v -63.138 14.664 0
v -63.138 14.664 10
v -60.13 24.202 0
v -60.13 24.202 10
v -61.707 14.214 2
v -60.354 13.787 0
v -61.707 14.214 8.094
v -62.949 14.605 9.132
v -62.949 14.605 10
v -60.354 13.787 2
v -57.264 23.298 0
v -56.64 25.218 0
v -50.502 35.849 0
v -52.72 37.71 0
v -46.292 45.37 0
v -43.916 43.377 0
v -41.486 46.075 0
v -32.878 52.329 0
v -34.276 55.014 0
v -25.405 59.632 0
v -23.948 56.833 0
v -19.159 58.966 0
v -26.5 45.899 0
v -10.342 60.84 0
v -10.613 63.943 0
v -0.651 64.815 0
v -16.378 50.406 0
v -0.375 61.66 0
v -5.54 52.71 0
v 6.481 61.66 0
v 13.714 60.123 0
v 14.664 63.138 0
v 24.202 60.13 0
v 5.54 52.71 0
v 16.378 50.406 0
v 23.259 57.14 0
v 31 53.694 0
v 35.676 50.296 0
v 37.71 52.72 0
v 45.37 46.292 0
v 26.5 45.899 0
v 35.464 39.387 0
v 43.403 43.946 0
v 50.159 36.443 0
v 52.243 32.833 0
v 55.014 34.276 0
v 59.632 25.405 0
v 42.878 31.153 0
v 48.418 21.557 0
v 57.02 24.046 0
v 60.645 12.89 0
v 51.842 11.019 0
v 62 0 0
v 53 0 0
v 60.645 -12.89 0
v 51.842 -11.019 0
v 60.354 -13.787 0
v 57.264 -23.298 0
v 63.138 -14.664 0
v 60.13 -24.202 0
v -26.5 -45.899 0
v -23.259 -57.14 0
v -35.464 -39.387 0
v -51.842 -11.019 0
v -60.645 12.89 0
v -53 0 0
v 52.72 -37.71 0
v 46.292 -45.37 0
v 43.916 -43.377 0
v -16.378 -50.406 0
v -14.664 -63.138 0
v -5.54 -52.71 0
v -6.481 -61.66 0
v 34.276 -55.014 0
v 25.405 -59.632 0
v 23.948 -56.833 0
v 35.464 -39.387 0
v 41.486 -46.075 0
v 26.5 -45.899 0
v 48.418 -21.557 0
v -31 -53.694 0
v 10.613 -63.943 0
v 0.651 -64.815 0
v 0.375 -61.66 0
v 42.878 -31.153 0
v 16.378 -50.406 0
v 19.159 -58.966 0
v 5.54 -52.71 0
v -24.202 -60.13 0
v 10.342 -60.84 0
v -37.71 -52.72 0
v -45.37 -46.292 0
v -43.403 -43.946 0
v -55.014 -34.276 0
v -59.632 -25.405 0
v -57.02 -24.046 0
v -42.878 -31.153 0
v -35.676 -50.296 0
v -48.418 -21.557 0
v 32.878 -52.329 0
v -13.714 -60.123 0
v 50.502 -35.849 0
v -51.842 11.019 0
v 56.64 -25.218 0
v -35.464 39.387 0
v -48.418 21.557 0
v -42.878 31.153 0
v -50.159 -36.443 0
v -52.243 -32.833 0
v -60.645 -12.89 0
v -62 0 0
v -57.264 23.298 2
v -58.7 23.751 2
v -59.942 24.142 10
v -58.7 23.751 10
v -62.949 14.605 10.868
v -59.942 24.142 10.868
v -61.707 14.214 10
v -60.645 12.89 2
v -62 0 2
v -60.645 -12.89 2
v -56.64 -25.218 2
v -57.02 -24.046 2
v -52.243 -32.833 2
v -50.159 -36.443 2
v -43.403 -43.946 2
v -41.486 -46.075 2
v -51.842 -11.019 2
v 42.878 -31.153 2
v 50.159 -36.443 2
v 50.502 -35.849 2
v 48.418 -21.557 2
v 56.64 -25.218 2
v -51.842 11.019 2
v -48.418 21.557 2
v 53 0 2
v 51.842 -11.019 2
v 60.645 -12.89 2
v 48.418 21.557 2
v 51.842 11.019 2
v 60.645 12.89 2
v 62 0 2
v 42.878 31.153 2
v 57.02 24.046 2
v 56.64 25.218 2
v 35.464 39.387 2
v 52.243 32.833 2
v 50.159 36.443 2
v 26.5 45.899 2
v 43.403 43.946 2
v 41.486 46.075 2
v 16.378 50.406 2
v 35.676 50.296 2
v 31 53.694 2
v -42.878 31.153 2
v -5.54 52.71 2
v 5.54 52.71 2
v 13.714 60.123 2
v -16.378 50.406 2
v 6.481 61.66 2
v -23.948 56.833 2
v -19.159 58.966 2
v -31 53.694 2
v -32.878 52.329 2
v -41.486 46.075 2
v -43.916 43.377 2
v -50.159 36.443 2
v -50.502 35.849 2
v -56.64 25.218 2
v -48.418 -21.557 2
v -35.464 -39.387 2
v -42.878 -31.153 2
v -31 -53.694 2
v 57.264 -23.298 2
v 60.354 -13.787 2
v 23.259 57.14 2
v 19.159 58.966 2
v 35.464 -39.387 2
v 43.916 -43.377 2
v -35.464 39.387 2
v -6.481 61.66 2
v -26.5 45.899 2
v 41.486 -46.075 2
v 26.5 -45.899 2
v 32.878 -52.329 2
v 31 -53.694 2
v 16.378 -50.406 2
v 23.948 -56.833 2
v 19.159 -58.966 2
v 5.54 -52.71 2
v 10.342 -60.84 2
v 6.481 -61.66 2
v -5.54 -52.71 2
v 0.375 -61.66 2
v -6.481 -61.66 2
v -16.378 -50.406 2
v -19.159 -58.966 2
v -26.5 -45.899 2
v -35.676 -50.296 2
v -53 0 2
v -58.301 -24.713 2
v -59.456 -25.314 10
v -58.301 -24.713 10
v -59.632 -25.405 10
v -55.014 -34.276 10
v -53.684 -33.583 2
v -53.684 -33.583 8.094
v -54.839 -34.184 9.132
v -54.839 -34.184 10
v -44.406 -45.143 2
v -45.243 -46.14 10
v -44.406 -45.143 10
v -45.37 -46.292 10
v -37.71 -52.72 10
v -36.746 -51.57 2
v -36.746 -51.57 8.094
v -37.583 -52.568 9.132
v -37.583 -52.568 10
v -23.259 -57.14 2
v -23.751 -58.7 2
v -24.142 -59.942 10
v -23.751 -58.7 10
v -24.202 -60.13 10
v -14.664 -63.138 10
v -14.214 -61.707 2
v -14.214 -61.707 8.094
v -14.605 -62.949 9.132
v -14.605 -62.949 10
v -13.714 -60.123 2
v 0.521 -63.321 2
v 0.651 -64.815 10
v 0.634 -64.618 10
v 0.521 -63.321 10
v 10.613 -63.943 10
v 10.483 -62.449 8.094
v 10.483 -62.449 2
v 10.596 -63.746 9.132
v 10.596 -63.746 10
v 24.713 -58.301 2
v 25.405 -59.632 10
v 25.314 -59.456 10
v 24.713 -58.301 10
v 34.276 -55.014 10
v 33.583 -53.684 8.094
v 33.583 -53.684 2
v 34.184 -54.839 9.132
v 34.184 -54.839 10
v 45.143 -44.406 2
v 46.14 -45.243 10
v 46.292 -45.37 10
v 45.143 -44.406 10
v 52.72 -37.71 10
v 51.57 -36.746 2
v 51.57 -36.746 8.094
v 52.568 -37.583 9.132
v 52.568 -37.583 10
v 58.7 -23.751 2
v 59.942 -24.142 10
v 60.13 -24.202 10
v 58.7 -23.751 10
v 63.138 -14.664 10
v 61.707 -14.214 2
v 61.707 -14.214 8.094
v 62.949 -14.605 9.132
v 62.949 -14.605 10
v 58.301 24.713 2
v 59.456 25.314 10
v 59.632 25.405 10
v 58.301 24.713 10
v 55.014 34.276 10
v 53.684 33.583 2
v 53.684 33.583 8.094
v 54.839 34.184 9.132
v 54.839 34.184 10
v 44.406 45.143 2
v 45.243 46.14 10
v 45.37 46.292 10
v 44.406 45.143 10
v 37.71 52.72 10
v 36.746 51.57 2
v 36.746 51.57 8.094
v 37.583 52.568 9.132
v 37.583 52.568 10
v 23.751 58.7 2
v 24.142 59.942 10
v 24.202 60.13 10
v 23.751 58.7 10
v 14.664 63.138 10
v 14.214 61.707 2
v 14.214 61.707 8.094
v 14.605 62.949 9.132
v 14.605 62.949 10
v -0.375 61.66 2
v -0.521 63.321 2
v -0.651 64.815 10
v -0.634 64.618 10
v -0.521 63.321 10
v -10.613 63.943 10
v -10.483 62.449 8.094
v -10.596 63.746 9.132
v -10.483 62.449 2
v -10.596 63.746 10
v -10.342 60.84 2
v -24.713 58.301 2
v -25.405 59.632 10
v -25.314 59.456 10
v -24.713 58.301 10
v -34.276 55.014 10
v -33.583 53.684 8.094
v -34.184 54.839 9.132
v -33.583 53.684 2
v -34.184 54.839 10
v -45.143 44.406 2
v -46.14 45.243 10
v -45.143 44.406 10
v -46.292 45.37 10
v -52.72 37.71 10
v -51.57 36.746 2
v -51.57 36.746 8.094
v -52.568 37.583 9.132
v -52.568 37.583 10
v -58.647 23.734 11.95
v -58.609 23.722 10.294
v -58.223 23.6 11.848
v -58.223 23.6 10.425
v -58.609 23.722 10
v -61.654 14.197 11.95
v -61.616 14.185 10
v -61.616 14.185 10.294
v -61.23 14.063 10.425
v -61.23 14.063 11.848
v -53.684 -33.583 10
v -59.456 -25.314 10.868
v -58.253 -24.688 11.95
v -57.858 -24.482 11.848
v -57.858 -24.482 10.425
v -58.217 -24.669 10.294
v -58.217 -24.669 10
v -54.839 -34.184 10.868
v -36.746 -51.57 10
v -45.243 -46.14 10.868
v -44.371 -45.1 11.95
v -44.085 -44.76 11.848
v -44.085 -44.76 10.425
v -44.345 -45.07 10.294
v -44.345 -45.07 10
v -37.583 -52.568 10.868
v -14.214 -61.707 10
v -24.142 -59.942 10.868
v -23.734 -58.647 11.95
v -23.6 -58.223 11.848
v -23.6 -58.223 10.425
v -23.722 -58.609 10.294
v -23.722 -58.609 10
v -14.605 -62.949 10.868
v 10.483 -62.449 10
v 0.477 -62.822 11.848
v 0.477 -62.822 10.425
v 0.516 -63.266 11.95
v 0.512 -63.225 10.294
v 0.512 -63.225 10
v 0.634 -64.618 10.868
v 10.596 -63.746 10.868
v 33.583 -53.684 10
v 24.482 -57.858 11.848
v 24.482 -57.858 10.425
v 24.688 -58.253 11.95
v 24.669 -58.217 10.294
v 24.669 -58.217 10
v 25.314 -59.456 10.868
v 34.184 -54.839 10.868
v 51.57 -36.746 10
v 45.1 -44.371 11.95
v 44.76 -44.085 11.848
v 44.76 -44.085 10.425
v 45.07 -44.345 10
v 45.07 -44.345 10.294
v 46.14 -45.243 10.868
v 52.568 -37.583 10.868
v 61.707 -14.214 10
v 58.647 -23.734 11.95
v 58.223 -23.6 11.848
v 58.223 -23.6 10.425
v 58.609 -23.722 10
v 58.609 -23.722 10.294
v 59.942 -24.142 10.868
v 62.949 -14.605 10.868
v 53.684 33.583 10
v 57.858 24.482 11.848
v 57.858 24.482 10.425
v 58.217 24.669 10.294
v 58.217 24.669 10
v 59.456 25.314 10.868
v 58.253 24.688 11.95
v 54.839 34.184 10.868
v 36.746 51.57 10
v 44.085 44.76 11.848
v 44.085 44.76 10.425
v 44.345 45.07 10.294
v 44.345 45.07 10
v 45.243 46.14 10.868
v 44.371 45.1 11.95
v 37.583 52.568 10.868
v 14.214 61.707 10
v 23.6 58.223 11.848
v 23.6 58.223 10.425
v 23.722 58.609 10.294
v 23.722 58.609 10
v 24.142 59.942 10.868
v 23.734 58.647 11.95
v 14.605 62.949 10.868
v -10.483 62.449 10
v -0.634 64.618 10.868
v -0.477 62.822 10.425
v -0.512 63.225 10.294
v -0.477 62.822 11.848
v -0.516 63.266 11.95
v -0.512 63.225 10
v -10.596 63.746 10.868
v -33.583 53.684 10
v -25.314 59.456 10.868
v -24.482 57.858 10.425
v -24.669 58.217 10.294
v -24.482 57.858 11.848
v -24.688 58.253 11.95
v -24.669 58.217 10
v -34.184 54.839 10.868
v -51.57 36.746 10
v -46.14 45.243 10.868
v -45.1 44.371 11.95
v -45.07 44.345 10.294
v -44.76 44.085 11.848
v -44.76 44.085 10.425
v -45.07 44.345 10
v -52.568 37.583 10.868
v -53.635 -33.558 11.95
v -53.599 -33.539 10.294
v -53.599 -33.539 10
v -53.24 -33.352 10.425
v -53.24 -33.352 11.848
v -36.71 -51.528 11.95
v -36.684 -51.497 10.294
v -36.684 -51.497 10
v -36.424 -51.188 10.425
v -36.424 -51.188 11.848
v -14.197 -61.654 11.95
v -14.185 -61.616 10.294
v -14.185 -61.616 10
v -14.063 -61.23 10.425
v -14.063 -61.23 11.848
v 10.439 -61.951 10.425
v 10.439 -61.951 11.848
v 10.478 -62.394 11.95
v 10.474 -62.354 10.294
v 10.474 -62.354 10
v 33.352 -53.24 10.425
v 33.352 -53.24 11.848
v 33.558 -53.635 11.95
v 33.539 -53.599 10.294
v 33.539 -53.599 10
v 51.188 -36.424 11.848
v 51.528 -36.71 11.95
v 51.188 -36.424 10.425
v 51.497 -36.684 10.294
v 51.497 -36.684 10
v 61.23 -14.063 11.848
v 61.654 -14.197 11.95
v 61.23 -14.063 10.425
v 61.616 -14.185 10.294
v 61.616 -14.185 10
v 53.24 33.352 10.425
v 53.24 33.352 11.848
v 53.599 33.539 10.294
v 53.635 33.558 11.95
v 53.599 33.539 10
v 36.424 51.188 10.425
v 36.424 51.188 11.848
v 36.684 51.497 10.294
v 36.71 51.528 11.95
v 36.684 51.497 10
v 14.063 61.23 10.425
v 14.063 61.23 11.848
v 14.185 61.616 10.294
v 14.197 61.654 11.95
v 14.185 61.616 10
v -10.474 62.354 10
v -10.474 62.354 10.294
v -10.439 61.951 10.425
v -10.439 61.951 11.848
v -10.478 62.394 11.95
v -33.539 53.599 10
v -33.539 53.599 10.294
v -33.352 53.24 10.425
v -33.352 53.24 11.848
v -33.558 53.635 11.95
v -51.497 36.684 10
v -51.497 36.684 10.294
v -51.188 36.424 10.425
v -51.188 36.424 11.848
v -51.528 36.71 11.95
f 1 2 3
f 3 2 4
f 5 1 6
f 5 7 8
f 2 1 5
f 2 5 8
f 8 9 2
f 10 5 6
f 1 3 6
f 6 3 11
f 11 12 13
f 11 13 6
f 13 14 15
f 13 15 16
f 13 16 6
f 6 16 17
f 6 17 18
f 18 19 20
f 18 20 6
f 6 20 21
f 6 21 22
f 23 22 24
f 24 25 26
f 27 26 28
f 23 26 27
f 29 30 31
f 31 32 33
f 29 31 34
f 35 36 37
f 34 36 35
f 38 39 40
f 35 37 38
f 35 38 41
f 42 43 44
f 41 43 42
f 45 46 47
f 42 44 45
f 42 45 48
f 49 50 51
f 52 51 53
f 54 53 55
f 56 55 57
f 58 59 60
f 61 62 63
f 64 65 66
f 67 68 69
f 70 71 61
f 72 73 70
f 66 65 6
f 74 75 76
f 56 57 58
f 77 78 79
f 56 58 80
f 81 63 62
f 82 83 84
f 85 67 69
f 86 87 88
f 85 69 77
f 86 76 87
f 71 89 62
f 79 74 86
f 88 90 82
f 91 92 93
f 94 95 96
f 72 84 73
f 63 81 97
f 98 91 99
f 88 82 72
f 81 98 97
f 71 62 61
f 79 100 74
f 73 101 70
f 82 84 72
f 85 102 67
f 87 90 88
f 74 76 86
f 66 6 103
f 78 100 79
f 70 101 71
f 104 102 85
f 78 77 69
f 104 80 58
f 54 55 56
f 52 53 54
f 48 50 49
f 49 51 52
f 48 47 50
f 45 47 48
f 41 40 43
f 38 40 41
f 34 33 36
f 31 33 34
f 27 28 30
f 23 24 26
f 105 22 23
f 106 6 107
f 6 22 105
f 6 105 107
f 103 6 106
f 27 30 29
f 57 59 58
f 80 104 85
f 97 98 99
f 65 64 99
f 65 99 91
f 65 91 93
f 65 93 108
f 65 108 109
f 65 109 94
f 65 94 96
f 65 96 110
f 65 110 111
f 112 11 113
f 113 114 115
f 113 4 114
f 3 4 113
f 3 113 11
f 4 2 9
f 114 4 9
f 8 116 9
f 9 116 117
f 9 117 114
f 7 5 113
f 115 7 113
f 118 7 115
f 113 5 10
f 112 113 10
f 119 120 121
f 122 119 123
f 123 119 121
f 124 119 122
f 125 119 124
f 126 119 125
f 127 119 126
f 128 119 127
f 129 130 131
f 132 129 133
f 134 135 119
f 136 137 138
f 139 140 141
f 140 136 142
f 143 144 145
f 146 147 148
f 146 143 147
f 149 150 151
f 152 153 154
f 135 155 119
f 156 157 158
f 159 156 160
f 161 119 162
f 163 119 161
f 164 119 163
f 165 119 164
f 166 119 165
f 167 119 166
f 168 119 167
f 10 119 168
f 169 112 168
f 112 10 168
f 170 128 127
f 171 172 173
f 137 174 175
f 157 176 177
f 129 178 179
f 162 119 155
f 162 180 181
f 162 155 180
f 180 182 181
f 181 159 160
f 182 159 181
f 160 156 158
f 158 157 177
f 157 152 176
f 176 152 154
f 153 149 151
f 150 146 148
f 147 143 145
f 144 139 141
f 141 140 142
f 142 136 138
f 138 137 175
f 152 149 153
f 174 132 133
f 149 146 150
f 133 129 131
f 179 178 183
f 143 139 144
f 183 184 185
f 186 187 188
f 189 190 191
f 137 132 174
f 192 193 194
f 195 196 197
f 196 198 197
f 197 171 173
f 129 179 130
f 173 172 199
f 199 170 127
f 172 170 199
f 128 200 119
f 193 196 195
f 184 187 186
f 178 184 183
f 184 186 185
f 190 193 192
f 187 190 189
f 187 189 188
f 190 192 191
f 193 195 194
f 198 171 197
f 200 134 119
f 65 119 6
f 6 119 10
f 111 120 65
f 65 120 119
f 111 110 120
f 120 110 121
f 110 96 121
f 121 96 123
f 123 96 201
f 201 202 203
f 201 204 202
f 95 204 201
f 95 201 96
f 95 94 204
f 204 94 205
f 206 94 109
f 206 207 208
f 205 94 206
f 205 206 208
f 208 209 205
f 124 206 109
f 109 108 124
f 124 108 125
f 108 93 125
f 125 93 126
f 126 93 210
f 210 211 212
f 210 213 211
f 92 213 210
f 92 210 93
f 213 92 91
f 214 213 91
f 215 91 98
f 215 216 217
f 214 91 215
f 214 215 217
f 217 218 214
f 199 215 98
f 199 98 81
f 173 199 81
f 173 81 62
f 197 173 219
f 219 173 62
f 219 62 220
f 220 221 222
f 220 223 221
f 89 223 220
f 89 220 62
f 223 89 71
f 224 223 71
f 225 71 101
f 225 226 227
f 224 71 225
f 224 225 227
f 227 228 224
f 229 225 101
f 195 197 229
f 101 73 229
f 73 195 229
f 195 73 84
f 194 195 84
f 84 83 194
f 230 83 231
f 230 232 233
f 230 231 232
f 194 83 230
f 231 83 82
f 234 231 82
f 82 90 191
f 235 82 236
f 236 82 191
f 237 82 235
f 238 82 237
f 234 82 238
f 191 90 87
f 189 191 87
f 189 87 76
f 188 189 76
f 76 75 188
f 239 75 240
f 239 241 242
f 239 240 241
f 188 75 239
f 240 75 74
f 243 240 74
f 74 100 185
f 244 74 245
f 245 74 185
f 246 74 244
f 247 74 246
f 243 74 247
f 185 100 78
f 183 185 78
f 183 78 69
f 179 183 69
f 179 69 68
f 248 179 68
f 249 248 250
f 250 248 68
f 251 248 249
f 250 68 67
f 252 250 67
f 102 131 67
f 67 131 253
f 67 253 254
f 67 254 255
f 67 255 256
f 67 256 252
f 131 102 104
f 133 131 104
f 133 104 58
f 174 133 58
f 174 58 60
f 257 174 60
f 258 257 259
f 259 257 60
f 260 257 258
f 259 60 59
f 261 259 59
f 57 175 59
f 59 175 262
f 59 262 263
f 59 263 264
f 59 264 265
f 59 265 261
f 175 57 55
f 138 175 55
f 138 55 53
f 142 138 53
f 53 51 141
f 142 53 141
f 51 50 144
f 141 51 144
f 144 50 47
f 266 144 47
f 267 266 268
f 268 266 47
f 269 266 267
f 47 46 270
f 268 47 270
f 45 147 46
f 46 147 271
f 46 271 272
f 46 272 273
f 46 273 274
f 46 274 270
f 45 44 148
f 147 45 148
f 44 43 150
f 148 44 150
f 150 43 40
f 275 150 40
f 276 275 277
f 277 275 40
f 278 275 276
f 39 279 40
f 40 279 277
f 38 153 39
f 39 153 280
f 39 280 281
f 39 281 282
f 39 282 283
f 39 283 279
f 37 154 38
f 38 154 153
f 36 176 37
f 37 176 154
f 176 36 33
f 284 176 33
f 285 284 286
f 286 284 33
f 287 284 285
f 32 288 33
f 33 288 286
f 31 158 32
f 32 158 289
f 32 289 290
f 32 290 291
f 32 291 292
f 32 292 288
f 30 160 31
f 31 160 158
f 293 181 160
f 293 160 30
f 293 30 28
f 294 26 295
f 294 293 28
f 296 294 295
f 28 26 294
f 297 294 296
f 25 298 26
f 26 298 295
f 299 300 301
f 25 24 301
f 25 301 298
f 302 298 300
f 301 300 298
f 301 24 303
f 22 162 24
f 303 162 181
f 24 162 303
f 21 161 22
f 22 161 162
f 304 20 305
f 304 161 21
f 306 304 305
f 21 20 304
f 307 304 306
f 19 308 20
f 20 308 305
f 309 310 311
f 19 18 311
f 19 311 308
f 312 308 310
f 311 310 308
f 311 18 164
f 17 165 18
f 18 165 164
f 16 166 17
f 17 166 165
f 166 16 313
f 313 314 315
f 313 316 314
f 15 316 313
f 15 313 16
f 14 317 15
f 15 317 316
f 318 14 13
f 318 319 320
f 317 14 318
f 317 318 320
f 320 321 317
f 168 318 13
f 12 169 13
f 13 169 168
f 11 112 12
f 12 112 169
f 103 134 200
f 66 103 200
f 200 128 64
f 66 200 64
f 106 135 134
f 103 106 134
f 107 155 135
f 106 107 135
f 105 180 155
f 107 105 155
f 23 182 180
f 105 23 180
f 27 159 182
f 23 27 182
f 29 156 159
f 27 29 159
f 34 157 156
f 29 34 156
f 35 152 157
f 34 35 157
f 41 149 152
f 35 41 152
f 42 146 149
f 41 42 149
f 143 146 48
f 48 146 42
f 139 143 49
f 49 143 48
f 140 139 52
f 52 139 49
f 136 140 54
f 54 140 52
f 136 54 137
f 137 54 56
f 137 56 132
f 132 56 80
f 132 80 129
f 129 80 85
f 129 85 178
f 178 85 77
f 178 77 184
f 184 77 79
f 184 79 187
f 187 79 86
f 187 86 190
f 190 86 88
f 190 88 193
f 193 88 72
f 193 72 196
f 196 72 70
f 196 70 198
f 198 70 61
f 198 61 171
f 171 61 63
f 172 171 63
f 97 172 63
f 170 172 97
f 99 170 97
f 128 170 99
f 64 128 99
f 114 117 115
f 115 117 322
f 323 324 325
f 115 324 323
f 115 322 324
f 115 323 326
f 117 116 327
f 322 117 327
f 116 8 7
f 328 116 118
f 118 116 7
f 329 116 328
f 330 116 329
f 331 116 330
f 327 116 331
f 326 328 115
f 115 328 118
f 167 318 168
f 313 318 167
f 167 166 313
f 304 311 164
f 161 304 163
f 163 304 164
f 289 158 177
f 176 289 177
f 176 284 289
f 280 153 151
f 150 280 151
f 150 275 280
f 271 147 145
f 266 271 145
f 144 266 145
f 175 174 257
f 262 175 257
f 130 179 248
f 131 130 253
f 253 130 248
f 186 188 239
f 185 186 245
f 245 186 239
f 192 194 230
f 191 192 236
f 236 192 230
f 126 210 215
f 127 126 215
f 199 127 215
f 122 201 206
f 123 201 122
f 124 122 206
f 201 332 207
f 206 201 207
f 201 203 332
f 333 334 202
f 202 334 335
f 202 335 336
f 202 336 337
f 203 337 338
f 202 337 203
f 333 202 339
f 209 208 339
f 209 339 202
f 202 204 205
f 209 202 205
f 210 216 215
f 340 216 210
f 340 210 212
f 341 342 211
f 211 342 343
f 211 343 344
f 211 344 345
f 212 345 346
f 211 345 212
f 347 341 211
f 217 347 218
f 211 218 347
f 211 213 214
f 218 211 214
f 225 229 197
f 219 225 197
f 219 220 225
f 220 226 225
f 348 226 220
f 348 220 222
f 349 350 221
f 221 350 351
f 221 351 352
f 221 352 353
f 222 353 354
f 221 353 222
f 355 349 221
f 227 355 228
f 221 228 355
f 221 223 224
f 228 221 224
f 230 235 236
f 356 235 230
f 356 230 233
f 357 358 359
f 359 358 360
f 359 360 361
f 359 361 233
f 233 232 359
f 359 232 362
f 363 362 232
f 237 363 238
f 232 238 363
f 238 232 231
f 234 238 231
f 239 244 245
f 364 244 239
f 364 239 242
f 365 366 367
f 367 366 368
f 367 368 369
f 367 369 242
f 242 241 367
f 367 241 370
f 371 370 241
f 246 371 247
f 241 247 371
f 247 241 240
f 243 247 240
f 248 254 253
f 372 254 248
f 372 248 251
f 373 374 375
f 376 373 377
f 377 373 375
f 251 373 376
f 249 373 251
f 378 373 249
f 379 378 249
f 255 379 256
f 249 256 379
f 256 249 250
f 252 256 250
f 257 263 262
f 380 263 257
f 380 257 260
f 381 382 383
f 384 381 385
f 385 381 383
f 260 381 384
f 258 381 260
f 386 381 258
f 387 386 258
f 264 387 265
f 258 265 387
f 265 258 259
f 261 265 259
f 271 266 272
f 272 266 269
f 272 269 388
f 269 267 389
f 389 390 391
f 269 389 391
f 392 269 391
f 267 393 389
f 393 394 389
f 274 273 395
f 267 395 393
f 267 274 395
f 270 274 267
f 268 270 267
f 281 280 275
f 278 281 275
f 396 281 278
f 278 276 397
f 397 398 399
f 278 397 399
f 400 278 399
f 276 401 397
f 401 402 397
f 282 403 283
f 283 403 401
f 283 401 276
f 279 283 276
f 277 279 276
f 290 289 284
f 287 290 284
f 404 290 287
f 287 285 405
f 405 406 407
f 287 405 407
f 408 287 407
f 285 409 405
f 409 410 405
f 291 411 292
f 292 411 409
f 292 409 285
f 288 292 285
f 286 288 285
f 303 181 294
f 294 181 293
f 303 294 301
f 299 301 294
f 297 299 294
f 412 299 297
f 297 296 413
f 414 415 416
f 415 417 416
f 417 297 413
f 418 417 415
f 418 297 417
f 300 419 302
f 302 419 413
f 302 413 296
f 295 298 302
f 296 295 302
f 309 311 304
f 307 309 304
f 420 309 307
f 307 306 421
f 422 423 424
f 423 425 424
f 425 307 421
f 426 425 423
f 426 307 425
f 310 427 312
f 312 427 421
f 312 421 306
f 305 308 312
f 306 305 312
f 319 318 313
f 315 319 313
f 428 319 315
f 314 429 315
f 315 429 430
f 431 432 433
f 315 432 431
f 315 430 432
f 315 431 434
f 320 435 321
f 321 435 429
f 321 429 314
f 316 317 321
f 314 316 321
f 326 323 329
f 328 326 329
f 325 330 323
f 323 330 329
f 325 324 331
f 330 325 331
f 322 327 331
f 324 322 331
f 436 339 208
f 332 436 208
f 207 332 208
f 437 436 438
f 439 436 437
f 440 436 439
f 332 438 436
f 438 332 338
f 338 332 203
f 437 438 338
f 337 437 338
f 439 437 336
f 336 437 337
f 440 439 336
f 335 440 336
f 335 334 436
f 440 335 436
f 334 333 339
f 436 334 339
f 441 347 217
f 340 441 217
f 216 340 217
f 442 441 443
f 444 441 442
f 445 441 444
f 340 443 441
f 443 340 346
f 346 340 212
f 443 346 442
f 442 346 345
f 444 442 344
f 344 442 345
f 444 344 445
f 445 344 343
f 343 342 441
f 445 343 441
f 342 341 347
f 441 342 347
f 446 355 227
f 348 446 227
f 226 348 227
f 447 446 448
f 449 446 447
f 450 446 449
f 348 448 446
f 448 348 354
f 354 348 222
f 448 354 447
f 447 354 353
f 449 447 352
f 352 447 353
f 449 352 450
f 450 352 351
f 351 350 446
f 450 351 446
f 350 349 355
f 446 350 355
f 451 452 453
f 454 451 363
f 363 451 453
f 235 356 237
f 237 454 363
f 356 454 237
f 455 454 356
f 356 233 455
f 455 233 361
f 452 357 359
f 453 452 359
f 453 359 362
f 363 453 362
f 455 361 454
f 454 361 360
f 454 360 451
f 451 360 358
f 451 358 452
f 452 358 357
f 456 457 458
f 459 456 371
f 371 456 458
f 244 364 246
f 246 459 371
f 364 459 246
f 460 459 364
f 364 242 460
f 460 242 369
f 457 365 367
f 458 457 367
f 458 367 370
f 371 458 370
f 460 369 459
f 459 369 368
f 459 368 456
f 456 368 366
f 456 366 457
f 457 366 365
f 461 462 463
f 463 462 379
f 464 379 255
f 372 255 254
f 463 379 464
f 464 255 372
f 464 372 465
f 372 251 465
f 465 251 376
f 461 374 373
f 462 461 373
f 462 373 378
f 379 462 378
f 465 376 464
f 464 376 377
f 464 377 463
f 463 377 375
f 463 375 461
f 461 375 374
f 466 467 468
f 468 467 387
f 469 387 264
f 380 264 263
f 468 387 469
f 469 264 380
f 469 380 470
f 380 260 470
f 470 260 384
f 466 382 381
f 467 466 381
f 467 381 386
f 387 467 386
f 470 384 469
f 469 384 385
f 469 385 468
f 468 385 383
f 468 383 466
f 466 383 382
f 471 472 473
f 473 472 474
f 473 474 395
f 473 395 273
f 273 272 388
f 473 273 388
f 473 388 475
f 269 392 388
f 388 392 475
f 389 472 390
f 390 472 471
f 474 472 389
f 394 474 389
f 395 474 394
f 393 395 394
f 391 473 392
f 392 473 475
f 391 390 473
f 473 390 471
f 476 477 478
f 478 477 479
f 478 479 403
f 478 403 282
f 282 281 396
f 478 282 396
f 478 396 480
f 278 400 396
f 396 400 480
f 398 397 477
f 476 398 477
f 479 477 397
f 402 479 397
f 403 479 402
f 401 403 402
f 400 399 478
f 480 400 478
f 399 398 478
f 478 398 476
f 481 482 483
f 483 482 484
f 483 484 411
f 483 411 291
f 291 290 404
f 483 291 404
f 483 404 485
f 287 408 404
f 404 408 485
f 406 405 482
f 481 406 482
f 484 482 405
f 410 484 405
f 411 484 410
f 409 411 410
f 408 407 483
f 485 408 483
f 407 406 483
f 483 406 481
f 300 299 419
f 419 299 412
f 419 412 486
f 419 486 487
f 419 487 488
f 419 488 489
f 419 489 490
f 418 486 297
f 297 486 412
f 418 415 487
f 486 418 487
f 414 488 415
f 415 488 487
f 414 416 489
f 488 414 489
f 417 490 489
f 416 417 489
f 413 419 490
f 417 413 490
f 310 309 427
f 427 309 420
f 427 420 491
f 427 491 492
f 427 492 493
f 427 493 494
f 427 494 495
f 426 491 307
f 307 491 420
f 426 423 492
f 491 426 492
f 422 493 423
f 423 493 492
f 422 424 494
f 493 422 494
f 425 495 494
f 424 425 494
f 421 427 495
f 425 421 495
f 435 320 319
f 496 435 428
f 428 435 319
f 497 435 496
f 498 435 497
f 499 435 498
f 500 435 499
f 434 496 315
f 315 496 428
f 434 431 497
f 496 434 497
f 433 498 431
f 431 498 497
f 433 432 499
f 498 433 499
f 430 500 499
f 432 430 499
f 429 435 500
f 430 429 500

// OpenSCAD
t = 0.4;
r = 57.5;
ep = 4.5;
e = 1.5;
nsup = 16;
ntrou = 22;

fixflat = 10;
fixw = 10;
fixr = 2;
fixd = fixr * 2;
fixh = fixflat + fixr;

module fix() {
	translate([0, -fixw / 2, 0]) {
		difference() {
			union() {
				cube([fixd, fixw, fixflat]);
				translate([fixr, fixw/2, fixflat]) {
					rotate(90, [1, 0, 0])
					difference() {
					  cylinder(fixw, fixr, fixr, true);
					  cylinder(fixw, fixr - e, fixr - e, true);
					}
				}
			}
			translate([e, -0.1, 2])
			cube([fixd - 2 * e, fixw + 1, fixflat - 2]);
			translate([fixd/2, -0.1, 2])
			cube([fixd/2, fixw + 1, fixh - 2]);
		}
	}
}

module anneau() {

	difference() {
		cylinder(2, r+ep, r+ep);
		cylinder(2, r-ep, r-ep); 
	}


	for( i = [0 : nsup]) {
		if(i % (nsup/2) != 0) {
			rotate(5 + i * 360 / nsup, [0, 0, 1])
			translate([r + ep + 1.5 + e * 0.75, 0, 0])
			rotate(180, [0, 0, 1]) fix();
		}
	}
}

difference() {
	anneau();
}
